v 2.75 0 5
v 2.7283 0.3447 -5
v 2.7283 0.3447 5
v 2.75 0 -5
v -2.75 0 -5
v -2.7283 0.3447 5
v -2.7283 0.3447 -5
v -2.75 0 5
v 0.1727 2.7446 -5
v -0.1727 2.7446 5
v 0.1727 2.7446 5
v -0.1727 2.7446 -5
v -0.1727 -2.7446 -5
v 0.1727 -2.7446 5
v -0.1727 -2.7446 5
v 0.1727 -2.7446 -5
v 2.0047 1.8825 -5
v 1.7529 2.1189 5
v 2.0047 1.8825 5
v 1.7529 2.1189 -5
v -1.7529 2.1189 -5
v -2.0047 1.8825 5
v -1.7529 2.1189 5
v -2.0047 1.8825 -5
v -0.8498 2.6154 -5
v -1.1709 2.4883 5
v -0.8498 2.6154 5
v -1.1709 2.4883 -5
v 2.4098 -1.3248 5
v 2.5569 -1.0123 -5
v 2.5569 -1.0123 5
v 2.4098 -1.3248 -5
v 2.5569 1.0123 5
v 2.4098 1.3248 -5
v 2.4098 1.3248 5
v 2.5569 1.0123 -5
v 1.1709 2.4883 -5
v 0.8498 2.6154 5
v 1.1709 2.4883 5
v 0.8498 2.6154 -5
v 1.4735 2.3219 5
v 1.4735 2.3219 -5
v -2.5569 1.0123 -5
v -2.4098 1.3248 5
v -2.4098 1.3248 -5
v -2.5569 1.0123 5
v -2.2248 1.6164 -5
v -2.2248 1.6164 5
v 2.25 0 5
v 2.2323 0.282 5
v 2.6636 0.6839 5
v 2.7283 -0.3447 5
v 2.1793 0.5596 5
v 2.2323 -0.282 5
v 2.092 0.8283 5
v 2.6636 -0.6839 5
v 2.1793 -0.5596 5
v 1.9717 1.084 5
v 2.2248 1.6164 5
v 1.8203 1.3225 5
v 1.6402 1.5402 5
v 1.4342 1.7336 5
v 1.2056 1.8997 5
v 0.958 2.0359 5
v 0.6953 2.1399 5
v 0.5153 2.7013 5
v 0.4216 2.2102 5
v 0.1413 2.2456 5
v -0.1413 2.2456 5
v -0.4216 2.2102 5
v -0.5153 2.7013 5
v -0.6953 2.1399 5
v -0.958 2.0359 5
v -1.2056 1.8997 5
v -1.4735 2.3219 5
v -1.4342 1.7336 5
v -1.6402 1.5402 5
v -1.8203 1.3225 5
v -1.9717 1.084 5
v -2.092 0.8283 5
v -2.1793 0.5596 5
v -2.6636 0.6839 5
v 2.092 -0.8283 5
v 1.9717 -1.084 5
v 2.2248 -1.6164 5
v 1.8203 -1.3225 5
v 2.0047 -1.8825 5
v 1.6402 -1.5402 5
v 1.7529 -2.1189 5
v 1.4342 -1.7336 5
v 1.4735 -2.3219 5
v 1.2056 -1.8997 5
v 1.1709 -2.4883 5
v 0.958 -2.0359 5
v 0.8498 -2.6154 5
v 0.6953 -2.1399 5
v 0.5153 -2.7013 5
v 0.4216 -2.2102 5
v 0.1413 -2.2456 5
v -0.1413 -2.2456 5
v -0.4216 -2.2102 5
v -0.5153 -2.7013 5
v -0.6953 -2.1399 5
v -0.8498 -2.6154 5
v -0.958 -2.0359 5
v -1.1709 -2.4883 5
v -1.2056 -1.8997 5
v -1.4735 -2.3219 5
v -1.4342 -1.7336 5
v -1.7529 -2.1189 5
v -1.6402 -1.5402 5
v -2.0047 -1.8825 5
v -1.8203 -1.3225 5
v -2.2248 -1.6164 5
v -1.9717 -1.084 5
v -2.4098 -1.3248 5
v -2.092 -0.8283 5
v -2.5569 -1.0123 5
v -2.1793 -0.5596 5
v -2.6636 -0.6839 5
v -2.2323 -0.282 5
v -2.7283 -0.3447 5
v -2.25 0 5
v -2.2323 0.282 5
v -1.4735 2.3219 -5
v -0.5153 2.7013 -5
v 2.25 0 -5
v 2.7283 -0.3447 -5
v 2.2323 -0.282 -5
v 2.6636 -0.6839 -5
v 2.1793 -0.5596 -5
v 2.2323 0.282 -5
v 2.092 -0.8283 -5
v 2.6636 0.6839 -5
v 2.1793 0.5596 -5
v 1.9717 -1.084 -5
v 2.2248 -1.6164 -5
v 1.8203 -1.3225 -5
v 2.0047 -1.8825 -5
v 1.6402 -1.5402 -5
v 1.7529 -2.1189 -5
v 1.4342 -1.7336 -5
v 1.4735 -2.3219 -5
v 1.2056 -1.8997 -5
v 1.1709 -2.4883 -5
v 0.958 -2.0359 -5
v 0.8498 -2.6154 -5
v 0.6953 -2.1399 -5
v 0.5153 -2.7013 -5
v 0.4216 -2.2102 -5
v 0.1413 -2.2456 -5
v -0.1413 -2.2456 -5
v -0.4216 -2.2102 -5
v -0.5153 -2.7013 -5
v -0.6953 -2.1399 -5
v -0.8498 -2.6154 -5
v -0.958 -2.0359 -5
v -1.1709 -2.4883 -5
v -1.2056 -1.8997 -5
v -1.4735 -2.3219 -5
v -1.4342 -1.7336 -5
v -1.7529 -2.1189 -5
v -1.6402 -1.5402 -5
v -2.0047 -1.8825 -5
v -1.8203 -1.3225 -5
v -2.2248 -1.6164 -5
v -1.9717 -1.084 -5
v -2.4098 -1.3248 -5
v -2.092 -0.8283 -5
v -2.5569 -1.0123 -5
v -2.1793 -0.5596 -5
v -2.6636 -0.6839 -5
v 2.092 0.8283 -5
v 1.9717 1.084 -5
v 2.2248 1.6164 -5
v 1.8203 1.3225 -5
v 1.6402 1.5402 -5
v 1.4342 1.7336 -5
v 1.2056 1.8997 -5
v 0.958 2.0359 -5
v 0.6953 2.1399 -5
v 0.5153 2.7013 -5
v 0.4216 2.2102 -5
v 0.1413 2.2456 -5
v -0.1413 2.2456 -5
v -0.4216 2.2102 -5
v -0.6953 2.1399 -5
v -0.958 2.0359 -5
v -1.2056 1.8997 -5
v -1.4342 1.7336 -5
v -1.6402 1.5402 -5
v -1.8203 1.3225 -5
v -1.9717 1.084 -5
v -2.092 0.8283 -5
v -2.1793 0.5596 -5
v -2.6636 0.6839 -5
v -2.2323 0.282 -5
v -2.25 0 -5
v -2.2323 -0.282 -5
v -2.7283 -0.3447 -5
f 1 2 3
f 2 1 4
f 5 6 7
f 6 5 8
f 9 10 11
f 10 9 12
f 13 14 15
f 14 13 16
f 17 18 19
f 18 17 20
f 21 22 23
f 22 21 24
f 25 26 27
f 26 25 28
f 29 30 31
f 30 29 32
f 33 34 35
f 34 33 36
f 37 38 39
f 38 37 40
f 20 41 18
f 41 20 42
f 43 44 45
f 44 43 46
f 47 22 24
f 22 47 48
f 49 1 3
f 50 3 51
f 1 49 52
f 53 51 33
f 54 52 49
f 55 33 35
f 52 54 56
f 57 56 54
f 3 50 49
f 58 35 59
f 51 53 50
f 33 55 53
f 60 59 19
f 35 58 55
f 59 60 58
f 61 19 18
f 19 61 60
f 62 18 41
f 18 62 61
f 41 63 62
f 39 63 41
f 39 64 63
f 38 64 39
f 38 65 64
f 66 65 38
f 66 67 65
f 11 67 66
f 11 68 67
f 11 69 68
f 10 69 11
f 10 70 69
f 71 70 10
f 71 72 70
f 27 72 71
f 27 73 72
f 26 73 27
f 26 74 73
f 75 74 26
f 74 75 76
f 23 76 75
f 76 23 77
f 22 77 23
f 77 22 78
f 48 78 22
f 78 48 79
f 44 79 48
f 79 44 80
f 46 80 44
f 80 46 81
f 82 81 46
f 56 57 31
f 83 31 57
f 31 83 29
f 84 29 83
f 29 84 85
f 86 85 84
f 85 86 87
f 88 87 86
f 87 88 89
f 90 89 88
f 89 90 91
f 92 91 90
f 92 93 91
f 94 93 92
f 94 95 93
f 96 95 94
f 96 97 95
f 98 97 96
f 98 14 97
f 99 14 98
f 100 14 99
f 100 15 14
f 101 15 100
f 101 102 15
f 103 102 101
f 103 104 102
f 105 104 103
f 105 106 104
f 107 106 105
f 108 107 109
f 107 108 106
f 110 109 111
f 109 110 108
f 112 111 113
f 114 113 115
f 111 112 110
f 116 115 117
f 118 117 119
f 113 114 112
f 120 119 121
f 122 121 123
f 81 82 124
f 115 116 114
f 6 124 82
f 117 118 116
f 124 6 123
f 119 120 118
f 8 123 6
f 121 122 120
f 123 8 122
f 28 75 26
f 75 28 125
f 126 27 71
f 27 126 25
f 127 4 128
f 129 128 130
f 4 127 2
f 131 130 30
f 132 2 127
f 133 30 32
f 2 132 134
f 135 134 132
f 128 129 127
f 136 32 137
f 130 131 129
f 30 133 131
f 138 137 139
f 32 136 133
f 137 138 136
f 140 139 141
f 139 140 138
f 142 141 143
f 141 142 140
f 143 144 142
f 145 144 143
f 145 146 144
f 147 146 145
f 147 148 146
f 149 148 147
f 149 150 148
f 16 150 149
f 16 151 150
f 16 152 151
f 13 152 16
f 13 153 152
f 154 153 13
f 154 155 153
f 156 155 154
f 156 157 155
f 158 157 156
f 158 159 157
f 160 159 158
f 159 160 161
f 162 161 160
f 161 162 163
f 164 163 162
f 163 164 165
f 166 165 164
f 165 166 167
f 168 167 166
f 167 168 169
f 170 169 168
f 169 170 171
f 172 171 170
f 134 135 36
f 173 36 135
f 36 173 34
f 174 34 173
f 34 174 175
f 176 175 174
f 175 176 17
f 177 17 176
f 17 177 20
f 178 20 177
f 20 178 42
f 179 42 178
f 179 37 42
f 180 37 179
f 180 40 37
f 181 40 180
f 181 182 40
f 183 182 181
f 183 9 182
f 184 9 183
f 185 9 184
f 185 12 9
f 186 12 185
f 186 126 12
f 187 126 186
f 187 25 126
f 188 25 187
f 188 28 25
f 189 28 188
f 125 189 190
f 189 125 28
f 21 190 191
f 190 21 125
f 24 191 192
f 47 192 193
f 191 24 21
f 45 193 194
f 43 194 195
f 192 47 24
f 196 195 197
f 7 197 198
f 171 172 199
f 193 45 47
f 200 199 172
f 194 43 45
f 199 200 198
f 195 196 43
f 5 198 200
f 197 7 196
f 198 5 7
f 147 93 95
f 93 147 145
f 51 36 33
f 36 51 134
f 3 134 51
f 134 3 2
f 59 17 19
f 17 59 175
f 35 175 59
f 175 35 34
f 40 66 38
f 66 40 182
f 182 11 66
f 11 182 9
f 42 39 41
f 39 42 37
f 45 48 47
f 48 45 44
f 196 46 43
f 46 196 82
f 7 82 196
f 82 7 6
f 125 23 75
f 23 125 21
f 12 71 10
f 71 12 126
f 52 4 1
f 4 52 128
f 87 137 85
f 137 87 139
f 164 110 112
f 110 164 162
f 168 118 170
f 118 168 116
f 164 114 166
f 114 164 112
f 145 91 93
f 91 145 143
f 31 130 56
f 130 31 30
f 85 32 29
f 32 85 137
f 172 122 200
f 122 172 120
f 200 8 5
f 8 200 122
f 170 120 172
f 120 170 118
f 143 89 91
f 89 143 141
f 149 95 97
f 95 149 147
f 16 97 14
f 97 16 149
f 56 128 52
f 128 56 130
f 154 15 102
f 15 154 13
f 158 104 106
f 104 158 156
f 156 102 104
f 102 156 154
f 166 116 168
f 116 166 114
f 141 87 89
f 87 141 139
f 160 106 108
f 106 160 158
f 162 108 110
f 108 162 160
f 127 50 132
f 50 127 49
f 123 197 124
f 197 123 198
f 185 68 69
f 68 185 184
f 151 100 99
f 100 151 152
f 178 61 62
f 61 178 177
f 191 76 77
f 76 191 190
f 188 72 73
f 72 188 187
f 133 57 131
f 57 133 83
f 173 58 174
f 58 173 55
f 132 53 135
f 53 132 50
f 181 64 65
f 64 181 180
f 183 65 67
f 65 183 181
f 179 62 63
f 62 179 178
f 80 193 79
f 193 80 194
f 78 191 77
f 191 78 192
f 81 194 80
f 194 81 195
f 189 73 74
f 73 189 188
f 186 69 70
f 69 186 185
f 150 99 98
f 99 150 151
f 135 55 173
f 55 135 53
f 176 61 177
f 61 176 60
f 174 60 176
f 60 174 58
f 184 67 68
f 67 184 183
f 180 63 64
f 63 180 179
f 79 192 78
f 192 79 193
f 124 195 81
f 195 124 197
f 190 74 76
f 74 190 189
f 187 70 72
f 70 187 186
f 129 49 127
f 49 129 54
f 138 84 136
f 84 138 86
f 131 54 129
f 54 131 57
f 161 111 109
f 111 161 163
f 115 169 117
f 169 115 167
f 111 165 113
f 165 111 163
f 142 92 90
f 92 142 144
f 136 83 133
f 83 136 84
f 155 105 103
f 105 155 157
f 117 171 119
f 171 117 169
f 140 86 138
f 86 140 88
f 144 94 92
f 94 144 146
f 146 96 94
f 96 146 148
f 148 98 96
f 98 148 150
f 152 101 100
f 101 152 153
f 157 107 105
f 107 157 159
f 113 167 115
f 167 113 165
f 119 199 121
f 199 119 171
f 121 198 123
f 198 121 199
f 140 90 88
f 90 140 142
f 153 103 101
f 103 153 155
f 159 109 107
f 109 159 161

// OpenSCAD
$fn = 50;


difference() {
	union() {
		translate(v = [0, 0, -5.0000000000]) {
			cylinder(h = 10, r = 2.7500000000);
		}
	}
	union() {
		translate(v = [0, 0, -100.0000000000]) {
			cylinder(h = 200, r = 2.2500000000);
		}
	}
}
